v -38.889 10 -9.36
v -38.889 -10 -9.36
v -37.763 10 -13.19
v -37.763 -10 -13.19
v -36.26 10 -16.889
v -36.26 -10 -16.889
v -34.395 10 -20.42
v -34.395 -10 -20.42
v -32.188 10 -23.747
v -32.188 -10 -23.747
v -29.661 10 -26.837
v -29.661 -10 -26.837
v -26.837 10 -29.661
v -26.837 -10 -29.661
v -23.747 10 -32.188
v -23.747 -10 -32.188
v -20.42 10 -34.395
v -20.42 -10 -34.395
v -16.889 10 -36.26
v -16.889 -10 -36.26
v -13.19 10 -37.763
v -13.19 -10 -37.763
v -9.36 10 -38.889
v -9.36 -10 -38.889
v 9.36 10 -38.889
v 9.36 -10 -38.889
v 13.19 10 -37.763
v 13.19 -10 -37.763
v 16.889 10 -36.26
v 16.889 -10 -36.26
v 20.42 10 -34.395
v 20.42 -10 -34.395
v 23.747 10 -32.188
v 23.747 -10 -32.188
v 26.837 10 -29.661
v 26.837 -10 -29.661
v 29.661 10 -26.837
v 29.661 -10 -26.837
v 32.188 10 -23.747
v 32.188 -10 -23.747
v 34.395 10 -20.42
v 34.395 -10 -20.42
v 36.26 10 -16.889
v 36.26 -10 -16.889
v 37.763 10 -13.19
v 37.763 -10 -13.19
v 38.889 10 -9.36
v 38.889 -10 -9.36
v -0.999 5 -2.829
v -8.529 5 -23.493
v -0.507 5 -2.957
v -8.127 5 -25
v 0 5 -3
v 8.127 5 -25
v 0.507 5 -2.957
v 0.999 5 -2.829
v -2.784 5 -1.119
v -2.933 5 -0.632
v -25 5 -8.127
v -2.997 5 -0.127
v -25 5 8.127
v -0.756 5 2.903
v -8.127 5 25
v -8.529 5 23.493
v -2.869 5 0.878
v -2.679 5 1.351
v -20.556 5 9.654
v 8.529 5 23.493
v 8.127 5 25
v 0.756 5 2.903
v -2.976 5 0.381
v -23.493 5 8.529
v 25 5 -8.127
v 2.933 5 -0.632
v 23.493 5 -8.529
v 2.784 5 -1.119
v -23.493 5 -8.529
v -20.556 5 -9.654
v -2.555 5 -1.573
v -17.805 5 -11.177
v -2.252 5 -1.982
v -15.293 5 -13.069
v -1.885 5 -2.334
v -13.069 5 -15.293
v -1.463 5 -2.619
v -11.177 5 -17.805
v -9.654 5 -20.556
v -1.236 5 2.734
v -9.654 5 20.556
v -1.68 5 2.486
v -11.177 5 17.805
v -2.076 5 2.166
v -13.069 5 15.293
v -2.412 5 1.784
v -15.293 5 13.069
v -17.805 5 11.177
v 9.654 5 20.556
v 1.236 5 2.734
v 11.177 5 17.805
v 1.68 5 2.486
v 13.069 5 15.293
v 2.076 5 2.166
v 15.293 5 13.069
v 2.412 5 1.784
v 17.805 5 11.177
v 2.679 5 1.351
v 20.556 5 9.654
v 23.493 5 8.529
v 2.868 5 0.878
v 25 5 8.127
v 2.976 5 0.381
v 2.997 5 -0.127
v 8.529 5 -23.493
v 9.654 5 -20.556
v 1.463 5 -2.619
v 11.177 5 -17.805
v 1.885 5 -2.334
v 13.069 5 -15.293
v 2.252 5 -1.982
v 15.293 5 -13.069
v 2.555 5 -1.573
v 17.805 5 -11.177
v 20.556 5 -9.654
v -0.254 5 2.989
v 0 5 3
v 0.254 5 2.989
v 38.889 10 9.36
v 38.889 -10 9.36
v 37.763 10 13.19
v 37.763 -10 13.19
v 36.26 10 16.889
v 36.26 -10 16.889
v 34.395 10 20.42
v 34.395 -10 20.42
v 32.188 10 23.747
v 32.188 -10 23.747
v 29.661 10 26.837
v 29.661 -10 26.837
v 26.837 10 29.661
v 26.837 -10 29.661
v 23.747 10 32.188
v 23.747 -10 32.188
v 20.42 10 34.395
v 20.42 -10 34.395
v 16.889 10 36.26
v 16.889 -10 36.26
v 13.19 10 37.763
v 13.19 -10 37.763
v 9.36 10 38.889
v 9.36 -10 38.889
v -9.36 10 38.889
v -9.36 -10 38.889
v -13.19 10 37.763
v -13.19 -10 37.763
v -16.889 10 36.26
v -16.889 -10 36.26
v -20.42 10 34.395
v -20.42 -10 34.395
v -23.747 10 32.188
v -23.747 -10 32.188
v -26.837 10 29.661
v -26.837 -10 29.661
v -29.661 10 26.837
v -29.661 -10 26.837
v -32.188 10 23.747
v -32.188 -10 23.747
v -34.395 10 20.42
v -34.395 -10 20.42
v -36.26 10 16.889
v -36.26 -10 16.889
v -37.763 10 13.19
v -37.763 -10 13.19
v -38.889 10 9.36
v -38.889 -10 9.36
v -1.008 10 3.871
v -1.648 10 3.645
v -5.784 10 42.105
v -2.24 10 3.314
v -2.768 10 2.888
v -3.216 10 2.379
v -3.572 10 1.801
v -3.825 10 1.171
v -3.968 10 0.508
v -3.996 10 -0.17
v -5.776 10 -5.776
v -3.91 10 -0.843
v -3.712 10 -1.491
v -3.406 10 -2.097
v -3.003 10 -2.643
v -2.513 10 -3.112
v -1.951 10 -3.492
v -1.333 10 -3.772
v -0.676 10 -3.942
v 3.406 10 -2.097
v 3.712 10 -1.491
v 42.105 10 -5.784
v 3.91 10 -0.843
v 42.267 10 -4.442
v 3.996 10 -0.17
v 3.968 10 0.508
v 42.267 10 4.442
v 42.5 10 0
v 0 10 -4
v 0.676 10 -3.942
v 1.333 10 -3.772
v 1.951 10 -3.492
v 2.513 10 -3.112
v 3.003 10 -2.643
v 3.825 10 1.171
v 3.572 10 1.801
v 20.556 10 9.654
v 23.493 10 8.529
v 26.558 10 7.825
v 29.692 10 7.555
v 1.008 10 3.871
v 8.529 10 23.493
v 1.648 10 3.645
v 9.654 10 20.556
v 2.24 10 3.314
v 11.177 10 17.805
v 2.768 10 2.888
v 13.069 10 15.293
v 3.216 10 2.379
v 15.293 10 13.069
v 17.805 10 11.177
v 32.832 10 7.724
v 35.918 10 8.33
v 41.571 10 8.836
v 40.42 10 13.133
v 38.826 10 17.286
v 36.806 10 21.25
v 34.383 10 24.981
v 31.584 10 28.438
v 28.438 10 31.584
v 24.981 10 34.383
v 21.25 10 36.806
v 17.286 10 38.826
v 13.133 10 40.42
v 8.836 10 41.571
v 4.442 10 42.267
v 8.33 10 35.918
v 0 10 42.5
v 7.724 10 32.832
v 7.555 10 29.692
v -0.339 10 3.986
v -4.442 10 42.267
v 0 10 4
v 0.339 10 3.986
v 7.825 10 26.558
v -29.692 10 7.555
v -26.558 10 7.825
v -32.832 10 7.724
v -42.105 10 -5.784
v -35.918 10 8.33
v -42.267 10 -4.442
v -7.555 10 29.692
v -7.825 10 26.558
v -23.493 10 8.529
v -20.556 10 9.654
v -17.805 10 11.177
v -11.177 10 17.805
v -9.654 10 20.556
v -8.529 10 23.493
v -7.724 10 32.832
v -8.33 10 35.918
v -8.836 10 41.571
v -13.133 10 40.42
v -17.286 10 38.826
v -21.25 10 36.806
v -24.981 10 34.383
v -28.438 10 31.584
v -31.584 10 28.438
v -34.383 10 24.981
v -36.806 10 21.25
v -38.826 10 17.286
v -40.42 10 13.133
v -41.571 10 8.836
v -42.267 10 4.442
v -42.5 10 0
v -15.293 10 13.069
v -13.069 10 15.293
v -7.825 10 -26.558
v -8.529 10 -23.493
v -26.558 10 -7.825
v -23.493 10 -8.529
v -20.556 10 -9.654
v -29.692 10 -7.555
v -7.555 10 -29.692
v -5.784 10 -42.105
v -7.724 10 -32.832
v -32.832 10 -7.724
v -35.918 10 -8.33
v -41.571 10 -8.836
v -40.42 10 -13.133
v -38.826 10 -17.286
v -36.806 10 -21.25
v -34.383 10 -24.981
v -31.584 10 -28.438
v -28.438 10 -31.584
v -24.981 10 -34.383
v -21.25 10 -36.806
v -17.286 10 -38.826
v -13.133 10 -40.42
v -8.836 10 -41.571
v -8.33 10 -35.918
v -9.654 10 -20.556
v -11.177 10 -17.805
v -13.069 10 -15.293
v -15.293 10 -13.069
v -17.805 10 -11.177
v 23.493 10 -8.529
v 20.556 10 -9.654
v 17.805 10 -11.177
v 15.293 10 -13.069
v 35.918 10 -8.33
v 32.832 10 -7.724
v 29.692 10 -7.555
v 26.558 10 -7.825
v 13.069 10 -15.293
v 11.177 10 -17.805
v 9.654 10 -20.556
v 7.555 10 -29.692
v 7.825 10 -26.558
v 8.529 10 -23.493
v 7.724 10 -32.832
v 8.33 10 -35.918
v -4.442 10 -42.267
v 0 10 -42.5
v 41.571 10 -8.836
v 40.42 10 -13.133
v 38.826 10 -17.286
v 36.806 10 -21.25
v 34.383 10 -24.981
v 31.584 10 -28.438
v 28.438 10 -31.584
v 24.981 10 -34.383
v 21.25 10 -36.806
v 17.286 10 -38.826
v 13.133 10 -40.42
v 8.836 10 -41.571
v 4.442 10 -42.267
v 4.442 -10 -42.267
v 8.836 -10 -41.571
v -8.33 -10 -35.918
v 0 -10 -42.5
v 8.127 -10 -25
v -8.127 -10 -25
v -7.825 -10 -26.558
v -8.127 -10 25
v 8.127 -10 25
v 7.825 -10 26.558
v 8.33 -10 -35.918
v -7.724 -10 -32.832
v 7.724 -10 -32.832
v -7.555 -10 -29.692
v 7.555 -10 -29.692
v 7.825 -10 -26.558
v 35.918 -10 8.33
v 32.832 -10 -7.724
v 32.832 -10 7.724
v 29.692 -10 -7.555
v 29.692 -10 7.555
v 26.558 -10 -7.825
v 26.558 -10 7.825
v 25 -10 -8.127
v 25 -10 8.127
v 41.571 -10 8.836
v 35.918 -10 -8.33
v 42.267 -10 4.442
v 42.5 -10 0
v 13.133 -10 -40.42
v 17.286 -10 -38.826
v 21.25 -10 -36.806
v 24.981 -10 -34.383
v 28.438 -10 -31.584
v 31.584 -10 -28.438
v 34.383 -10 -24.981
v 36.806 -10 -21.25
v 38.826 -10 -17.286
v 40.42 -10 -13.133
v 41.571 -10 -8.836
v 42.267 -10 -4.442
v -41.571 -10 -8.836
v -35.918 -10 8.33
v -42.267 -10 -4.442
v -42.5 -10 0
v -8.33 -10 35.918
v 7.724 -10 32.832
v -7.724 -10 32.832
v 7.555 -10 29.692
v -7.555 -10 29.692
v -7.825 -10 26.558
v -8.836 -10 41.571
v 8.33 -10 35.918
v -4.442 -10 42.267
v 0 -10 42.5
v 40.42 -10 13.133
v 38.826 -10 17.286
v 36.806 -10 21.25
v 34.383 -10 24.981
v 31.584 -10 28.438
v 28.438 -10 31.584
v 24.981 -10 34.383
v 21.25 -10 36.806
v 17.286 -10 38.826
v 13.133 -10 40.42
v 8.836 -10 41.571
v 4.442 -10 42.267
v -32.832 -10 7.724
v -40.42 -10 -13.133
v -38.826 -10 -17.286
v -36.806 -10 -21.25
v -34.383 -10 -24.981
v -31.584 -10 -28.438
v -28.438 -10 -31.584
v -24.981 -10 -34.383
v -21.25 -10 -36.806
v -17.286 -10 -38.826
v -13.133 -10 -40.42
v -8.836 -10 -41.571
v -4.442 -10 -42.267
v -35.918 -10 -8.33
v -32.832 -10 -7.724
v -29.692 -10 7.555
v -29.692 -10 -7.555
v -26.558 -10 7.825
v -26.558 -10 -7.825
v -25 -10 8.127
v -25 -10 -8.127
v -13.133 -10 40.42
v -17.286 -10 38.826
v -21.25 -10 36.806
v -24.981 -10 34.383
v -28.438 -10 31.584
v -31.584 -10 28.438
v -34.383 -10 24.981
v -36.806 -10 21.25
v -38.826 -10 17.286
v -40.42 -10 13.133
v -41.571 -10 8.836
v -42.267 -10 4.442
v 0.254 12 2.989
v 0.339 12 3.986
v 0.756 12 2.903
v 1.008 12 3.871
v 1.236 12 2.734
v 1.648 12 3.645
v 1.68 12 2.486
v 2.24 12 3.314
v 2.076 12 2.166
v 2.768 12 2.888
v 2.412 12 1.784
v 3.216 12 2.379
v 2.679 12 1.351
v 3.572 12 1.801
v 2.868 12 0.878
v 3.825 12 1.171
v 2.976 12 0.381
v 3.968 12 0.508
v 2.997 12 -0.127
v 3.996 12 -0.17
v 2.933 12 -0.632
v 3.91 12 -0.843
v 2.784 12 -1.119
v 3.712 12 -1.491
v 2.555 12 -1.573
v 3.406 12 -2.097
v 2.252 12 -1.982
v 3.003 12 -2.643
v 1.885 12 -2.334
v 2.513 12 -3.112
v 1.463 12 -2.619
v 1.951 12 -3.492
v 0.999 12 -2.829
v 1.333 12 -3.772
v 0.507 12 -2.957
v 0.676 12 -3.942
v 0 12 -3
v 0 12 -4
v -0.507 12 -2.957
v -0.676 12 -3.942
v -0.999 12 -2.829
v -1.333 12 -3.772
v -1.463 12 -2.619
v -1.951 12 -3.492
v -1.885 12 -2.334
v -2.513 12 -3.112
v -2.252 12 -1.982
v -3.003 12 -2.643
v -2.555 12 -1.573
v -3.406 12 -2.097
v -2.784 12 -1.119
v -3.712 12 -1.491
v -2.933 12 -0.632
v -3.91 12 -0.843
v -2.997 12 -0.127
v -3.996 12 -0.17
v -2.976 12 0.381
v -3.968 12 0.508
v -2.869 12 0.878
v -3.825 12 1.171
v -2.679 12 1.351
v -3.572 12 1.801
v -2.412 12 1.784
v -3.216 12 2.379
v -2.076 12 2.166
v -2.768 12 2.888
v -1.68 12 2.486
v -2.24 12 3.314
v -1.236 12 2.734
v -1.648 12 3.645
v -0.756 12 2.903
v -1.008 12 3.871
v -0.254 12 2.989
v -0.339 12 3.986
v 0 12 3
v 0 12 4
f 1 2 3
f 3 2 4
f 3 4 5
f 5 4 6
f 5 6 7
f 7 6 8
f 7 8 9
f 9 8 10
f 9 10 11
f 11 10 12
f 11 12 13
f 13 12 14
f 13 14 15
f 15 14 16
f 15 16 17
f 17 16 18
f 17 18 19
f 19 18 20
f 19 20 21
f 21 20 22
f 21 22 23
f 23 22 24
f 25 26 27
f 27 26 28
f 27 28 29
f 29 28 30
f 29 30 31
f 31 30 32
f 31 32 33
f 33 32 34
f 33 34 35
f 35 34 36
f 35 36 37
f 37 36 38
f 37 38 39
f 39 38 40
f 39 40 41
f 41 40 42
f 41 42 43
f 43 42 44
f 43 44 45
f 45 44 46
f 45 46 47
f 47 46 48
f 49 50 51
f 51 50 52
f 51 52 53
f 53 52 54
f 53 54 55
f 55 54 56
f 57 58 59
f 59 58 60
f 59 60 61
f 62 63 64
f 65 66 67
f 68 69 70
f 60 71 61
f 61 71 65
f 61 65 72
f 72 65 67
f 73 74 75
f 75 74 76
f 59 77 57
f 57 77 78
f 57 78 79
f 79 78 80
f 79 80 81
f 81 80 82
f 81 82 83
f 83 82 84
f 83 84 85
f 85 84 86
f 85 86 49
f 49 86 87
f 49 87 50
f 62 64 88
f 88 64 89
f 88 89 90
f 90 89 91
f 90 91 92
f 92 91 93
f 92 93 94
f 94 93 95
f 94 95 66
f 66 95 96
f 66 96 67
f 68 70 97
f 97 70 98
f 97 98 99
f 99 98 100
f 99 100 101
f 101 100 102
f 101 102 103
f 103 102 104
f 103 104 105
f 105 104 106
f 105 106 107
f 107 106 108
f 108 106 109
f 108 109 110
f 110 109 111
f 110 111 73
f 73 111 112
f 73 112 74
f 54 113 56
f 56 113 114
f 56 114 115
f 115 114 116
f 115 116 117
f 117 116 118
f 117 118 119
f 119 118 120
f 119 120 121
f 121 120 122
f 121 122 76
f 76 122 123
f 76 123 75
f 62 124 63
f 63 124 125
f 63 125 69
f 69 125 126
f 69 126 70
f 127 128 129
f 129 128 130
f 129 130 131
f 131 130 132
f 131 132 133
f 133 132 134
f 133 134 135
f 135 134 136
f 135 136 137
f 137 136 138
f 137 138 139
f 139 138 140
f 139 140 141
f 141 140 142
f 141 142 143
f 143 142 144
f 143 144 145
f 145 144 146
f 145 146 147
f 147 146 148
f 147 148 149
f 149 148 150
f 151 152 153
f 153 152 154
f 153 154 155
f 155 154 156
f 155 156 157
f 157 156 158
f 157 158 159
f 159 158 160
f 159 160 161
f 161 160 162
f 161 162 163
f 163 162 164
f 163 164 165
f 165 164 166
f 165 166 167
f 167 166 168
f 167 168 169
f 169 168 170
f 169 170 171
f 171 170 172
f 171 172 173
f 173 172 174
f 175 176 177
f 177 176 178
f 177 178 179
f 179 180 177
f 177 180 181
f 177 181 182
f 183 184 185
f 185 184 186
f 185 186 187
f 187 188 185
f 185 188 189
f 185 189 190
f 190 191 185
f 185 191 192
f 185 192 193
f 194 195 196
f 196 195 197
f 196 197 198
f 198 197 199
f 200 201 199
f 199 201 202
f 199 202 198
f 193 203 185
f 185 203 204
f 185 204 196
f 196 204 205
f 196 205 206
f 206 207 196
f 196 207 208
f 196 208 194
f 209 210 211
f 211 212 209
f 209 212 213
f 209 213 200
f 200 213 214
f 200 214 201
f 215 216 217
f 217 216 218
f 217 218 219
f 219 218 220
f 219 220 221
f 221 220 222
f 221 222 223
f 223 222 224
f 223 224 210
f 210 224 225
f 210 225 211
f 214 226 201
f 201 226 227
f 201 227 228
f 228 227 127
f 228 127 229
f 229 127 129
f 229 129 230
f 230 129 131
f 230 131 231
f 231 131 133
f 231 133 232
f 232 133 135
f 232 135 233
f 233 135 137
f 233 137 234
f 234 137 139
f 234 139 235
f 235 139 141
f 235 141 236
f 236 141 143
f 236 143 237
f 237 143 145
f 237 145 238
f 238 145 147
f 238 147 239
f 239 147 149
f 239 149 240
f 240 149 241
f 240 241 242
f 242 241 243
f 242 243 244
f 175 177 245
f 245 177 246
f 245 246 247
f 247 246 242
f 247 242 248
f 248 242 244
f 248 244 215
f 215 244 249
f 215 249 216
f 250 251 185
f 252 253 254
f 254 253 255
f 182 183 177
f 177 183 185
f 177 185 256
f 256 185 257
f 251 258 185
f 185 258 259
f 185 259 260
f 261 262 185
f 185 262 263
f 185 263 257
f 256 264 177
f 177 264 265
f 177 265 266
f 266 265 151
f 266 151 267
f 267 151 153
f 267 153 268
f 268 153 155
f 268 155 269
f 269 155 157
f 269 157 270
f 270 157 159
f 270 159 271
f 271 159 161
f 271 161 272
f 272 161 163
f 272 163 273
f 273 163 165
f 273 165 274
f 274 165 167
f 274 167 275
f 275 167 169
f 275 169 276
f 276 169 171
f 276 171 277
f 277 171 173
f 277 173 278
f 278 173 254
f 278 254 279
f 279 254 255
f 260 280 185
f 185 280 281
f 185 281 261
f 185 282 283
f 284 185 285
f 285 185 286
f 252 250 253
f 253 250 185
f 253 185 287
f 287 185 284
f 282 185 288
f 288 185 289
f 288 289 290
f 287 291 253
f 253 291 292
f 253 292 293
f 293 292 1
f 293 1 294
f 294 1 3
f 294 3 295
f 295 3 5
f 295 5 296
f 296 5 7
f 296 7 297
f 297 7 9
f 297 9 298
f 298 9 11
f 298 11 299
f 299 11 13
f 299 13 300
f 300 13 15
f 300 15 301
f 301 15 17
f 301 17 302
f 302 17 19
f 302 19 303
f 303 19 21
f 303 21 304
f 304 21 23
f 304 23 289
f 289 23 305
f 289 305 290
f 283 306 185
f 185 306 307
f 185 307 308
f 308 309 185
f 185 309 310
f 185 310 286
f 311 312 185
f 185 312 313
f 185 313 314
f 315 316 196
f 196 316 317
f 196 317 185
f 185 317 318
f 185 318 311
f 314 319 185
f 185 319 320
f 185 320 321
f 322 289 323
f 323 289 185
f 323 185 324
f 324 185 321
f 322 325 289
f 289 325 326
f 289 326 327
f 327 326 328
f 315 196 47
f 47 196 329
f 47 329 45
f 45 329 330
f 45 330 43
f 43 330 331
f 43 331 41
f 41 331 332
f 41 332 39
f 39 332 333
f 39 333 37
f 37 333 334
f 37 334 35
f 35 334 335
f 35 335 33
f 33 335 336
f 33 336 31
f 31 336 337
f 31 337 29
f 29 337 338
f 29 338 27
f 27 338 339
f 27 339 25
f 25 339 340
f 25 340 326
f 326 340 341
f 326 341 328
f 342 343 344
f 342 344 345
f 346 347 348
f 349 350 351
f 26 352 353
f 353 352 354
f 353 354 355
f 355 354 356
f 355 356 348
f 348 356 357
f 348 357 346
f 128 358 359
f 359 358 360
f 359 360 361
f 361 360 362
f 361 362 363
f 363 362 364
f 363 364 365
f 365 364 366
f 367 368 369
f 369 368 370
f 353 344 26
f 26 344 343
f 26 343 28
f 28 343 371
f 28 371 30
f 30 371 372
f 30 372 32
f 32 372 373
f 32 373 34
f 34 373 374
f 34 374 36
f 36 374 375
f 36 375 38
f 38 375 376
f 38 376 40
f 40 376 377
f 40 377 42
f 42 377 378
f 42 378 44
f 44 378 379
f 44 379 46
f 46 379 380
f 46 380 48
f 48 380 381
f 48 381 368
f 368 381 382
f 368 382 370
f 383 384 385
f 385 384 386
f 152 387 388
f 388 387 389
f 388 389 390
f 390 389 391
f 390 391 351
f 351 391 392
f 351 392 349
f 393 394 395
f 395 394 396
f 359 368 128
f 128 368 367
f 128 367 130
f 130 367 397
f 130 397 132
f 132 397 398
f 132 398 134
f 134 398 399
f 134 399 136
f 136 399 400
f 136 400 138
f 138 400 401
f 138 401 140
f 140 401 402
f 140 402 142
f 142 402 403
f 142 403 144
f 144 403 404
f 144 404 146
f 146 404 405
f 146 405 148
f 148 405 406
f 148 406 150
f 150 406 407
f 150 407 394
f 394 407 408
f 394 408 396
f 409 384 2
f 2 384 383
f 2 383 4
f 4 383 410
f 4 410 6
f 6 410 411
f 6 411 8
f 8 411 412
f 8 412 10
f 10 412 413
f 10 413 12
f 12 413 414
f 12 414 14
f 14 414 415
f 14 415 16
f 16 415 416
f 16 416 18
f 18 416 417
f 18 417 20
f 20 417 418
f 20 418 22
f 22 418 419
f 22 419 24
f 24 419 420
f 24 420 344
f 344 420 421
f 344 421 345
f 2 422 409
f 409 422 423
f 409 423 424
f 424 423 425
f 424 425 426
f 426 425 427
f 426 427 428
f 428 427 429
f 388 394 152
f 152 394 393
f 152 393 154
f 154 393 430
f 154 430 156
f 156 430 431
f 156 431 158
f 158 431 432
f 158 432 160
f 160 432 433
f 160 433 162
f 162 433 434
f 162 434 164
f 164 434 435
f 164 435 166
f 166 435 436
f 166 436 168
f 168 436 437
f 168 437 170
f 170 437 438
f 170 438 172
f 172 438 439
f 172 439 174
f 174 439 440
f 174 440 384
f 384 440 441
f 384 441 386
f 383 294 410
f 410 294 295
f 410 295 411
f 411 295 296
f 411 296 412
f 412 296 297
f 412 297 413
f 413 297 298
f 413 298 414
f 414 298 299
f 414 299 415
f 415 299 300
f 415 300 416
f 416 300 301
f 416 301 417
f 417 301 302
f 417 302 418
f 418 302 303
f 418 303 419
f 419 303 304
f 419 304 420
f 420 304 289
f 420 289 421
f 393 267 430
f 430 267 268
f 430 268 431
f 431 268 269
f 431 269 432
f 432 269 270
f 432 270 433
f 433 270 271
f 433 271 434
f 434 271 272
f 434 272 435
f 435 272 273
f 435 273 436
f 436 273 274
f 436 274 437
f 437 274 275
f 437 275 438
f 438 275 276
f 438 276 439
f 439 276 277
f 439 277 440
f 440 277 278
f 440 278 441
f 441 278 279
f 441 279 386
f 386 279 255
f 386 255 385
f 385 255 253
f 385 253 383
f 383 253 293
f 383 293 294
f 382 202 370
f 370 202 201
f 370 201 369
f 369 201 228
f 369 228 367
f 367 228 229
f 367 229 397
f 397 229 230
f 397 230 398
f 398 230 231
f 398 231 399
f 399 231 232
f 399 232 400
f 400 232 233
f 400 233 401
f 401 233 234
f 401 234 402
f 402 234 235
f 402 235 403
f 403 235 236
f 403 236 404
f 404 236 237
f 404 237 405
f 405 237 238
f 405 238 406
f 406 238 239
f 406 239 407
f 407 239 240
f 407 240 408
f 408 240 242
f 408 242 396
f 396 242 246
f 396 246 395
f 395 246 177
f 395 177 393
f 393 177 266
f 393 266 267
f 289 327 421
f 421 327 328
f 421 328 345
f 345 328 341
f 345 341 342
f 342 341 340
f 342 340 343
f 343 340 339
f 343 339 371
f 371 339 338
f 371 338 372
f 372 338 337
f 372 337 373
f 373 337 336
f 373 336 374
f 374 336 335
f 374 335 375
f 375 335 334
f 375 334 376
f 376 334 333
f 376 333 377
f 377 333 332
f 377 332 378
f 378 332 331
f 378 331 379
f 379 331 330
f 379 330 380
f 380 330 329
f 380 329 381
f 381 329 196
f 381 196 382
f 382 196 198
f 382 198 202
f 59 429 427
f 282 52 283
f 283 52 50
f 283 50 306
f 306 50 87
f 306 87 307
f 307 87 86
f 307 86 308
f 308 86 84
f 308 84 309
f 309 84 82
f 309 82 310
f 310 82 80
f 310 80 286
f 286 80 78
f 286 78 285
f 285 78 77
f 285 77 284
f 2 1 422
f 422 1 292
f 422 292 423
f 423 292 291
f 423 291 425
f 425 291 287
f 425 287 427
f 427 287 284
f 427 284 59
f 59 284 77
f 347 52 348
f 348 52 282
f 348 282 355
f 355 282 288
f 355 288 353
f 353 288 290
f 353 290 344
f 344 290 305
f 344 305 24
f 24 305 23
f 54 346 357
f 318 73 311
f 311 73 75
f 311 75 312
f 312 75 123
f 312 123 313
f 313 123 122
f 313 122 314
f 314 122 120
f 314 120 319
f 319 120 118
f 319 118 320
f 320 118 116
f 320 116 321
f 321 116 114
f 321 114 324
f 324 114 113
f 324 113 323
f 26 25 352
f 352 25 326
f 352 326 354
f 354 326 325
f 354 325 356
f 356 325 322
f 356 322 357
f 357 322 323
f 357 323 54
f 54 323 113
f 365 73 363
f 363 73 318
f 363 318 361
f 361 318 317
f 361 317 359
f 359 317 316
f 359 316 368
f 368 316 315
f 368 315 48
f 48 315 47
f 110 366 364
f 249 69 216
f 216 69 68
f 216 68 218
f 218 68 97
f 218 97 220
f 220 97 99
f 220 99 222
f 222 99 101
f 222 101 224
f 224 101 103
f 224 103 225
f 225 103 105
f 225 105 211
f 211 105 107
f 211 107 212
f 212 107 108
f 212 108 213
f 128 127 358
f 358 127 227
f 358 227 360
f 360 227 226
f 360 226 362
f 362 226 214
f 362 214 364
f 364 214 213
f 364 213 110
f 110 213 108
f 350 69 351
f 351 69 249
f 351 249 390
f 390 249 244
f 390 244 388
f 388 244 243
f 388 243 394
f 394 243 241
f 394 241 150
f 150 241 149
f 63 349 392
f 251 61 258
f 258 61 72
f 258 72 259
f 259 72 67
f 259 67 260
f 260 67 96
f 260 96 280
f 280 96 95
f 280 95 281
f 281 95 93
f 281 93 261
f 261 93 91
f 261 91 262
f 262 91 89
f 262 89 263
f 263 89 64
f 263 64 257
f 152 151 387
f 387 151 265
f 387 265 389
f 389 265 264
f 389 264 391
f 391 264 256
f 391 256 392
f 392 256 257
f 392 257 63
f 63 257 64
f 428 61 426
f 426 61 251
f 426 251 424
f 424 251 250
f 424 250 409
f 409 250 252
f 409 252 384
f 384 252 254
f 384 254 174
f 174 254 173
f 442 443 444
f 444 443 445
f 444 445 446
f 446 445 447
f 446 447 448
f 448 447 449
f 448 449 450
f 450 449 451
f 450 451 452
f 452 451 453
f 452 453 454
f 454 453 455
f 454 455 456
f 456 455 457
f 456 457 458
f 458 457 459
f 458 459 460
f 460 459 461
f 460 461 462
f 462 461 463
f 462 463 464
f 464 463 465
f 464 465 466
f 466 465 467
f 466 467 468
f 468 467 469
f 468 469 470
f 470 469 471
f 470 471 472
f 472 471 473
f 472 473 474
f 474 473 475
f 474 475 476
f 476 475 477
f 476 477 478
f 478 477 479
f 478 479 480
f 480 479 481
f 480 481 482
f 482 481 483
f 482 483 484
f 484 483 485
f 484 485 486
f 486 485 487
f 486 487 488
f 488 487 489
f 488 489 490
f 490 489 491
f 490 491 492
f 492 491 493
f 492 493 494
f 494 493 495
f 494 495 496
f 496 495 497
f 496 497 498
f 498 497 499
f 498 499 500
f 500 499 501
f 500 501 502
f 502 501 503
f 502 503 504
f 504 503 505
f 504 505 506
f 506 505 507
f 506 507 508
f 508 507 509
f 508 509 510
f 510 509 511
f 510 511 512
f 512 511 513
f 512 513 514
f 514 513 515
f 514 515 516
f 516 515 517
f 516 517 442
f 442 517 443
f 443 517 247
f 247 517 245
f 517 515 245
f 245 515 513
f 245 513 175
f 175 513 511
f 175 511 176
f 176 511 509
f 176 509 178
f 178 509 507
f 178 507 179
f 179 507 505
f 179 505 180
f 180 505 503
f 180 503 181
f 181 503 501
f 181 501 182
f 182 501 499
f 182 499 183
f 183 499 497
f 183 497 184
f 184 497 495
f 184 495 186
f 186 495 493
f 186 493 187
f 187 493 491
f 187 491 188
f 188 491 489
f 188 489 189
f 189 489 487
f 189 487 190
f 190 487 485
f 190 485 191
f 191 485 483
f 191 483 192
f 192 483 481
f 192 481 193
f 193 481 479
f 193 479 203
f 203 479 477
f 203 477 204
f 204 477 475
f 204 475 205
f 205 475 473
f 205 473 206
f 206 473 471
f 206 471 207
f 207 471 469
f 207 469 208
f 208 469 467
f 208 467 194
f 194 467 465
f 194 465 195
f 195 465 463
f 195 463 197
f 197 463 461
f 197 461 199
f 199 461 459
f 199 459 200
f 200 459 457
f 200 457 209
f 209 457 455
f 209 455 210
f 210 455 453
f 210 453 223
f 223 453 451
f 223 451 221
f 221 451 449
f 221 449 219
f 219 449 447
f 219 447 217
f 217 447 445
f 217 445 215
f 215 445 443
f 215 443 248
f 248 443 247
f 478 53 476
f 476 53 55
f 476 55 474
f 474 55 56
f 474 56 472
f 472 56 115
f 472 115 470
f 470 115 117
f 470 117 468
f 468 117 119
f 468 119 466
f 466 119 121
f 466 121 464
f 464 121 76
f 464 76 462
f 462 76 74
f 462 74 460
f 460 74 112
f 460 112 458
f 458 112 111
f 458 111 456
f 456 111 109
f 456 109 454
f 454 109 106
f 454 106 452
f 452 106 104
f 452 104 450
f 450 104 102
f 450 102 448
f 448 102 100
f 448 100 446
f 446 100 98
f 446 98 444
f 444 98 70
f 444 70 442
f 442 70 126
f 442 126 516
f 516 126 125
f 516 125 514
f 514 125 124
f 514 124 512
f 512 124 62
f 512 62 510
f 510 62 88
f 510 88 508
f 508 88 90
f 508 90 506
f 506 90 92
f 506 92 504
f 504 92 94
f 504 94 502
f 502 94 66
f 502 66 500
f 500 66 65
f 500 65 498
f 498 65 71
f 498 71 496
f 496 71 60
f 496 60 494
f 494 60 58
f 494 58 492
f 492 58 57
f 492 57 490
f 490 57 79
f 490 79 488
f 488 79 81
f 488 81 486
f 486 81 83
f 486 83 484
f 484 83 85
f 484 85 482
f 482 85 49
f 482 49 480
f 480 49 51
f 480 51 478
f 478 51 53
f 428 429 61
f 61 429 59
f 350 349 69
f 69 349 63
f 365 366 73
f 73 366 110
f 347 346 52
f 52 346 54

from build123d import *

# Parameters (mm, degrees)
SKETCH1_R           = 42.5
SKETCH1_R_2         = 40
BOSS_EXTRUDE1_DEPTH = 10
BOSS_EXTRUDE2_START = -5
BOSS_EXTRUDE2_DEPTH = 5
SKETCH3_R           = 4
SKETCH3_R_2         = 3
BOSS_EXTRUDE3_DEPTH = 2
SKETCH4_R           = 3
CUT_EXTRUDE1_DEPTH  = 64.344297297
BOSS_EXTRUDE4_START = 15
BOSS_EXTRUDE4_DEPTH = 15


with BuildPart() as part:
    # Sketch1 → Boss-Extrude1 (new, symmetric)
    with BuildSketch(Plane(origin=(0, 0, 0), x_dir=(1, 0, 0), z_dir=(0, 1, 0))):
        with Locations(Location((0, 0, 0), (0, 0, 270))):
            Circle(SKETCH1_R)
        with Locations(Location((0, 0, 0), (0, 0, 270))):
            Circle(SKETCH1_R_2, mode=Mode.SUBTRACT)
    extrude(amount=BOSS_EXTRUDE1_DEPTH, both=True)

    # Sketch2 → Boss-Extrude2 (add)
    with BuildSketch(Plane(origin=(0, 10, 0), x_dir=(1, 0, 0), z_dir=(0, 1, 0)).offset(BOSS_EXTRUDE2_START)):
        with BuildLine():
            ThreePointArc((-38.889408297, 9.36023089), (-14.142135624, 14.142135624), (-9.36023089, 38.889408297))
            ThreePointArc((-9.36023089, 38.889408297), (0, 40), (9.36023089, 38.889408297))
            ThreePointArc((9.36023089, 38.889408297), (14.142135624, 14.142135624), (38.889408297, 9.36023089))
            ThreePointArc((38.889408297, 9.36023089), (40, 0), (38.889408297, -9.36023089))
            ThreePointArc((38.889408297, -9.36023089), (14.142135624, -14.142135624), (9.36023089, -38.889408297))
            ThreePointArc((9.36023089, -38.889408297), (0, -40), (-9.36023089, -38.889408297))
            ThreePointArc((-9.36023089, -38.889408297), (-14.142135624, -14.142135624), (-38.889408297, -9.36023089))
            ThreePointArc((-38.889408297, -9.36023089), (-40, 0), (-38.889408297, 9.36023089))
        make_face()
    extrude(amount=BOSS_EXTRUDE2_DEPTH)

    # Sketch3 → Boss-Extrude3 (add)
    with BuildSketch(Plane(origin=(0, 10, 0), x_dir=(1, 0, 0), z_dir=(0, 1, 0))):
        with Locations(Location((0, 0, 0), (0, 0, 270))):
            Circle(SKETCH3_R)
        with Locations(Location((0, 0, 0), (0, 0, 270))):
            Circle(SKETCH3_R_2, mode=Mode.SUBTRACT)
    extrude(amount=BOSS_EXTRUDE3_DEPTH)

    # Sketch4 → Cut-Extrude1 (cut, through all)
    with BuildSketch(Plane(origin=(0, 10, 0), x_dir=(1, 0, 0), z_dir=(0, 1, 0))):
        with Locations(Location((0, 0, 0), (0, 0, 270))):
            Circle(SKETCH4_R)
    extrude(amount=-CUT_EXTRUDE1_DEPTH, mode=Mode.SUBTRACT)

    # Sketch5 → Boss-Extrude4 (add)
    with BuildSketch(Plane.XZ.offset(-5).offset(BOSS_EXTRUDE4_START)):
        with BuildLine():
            Line((-25, -8.126552801), (-25, 8.126552801))
            ThreePointArc((-25, 8.126552801), (-32.042685029, 7.64027064), (-38.889408297, 9.36023089))
            ThreePointArc((-38.889408297, 9.36023089), (-40, 0), (-38.889408297, -9.36023089))
            ThreePointArc((-38.889408297, -9.36023089), (-32.042685029, -7.64027064), (-25, -8.126552801))
        make_face()
        with BuildLine():
            Line((-8.126552801, 25), (8.126552801, 25))
            ThreePointArc((8.126552801, 25), (7.64027064, 32.042685029), (9.36023089, 38.889408297))
            ThreePointArc((9.36023089, 38.889408297), (0, 40), (-9.36023089, 38.889408297))
            ThreePointArc((-9.36023089, 38.889408297), (-7.64027064, 32.042685029), (-8.126552801, 25))
        make_face()
        with BuildLine():
            Line((25, 8.126552801), (25, -8.126552801))
            ThreePointArc((25, -8.126552801), (32.042685029, -7.64027064), (38.889408297, -9.36023089))
            ThreePointArc((38.889408297, -9.36023089), (40, 0), (38.889408297, 9.36023089))
            ThreePointArc((38.889408297, 9.36023089), (32.042685029, 7.64027064), (25, 8.126552801))
        make_face()
        with BuildLine():
            Line((8.126552801, -25), (-8.126552801, -25))
            ThreePointArc((-8.126552801, -25), (-7.64027064, -32.042685029), (-9.36023089, -38.889408297))
            ThreePointArc((-9.36023089, -38.889408297), (0, -40), (9.36023089, -38.889408297))
            ThreePointArc((9.36023089, -38.889408297), (7.64027064, -32.042685029), (8.126552801, -25))
        make_face()
    extrude(amount=-BOSS_EXTRUDE4_DEPTH)


solid = part.part
